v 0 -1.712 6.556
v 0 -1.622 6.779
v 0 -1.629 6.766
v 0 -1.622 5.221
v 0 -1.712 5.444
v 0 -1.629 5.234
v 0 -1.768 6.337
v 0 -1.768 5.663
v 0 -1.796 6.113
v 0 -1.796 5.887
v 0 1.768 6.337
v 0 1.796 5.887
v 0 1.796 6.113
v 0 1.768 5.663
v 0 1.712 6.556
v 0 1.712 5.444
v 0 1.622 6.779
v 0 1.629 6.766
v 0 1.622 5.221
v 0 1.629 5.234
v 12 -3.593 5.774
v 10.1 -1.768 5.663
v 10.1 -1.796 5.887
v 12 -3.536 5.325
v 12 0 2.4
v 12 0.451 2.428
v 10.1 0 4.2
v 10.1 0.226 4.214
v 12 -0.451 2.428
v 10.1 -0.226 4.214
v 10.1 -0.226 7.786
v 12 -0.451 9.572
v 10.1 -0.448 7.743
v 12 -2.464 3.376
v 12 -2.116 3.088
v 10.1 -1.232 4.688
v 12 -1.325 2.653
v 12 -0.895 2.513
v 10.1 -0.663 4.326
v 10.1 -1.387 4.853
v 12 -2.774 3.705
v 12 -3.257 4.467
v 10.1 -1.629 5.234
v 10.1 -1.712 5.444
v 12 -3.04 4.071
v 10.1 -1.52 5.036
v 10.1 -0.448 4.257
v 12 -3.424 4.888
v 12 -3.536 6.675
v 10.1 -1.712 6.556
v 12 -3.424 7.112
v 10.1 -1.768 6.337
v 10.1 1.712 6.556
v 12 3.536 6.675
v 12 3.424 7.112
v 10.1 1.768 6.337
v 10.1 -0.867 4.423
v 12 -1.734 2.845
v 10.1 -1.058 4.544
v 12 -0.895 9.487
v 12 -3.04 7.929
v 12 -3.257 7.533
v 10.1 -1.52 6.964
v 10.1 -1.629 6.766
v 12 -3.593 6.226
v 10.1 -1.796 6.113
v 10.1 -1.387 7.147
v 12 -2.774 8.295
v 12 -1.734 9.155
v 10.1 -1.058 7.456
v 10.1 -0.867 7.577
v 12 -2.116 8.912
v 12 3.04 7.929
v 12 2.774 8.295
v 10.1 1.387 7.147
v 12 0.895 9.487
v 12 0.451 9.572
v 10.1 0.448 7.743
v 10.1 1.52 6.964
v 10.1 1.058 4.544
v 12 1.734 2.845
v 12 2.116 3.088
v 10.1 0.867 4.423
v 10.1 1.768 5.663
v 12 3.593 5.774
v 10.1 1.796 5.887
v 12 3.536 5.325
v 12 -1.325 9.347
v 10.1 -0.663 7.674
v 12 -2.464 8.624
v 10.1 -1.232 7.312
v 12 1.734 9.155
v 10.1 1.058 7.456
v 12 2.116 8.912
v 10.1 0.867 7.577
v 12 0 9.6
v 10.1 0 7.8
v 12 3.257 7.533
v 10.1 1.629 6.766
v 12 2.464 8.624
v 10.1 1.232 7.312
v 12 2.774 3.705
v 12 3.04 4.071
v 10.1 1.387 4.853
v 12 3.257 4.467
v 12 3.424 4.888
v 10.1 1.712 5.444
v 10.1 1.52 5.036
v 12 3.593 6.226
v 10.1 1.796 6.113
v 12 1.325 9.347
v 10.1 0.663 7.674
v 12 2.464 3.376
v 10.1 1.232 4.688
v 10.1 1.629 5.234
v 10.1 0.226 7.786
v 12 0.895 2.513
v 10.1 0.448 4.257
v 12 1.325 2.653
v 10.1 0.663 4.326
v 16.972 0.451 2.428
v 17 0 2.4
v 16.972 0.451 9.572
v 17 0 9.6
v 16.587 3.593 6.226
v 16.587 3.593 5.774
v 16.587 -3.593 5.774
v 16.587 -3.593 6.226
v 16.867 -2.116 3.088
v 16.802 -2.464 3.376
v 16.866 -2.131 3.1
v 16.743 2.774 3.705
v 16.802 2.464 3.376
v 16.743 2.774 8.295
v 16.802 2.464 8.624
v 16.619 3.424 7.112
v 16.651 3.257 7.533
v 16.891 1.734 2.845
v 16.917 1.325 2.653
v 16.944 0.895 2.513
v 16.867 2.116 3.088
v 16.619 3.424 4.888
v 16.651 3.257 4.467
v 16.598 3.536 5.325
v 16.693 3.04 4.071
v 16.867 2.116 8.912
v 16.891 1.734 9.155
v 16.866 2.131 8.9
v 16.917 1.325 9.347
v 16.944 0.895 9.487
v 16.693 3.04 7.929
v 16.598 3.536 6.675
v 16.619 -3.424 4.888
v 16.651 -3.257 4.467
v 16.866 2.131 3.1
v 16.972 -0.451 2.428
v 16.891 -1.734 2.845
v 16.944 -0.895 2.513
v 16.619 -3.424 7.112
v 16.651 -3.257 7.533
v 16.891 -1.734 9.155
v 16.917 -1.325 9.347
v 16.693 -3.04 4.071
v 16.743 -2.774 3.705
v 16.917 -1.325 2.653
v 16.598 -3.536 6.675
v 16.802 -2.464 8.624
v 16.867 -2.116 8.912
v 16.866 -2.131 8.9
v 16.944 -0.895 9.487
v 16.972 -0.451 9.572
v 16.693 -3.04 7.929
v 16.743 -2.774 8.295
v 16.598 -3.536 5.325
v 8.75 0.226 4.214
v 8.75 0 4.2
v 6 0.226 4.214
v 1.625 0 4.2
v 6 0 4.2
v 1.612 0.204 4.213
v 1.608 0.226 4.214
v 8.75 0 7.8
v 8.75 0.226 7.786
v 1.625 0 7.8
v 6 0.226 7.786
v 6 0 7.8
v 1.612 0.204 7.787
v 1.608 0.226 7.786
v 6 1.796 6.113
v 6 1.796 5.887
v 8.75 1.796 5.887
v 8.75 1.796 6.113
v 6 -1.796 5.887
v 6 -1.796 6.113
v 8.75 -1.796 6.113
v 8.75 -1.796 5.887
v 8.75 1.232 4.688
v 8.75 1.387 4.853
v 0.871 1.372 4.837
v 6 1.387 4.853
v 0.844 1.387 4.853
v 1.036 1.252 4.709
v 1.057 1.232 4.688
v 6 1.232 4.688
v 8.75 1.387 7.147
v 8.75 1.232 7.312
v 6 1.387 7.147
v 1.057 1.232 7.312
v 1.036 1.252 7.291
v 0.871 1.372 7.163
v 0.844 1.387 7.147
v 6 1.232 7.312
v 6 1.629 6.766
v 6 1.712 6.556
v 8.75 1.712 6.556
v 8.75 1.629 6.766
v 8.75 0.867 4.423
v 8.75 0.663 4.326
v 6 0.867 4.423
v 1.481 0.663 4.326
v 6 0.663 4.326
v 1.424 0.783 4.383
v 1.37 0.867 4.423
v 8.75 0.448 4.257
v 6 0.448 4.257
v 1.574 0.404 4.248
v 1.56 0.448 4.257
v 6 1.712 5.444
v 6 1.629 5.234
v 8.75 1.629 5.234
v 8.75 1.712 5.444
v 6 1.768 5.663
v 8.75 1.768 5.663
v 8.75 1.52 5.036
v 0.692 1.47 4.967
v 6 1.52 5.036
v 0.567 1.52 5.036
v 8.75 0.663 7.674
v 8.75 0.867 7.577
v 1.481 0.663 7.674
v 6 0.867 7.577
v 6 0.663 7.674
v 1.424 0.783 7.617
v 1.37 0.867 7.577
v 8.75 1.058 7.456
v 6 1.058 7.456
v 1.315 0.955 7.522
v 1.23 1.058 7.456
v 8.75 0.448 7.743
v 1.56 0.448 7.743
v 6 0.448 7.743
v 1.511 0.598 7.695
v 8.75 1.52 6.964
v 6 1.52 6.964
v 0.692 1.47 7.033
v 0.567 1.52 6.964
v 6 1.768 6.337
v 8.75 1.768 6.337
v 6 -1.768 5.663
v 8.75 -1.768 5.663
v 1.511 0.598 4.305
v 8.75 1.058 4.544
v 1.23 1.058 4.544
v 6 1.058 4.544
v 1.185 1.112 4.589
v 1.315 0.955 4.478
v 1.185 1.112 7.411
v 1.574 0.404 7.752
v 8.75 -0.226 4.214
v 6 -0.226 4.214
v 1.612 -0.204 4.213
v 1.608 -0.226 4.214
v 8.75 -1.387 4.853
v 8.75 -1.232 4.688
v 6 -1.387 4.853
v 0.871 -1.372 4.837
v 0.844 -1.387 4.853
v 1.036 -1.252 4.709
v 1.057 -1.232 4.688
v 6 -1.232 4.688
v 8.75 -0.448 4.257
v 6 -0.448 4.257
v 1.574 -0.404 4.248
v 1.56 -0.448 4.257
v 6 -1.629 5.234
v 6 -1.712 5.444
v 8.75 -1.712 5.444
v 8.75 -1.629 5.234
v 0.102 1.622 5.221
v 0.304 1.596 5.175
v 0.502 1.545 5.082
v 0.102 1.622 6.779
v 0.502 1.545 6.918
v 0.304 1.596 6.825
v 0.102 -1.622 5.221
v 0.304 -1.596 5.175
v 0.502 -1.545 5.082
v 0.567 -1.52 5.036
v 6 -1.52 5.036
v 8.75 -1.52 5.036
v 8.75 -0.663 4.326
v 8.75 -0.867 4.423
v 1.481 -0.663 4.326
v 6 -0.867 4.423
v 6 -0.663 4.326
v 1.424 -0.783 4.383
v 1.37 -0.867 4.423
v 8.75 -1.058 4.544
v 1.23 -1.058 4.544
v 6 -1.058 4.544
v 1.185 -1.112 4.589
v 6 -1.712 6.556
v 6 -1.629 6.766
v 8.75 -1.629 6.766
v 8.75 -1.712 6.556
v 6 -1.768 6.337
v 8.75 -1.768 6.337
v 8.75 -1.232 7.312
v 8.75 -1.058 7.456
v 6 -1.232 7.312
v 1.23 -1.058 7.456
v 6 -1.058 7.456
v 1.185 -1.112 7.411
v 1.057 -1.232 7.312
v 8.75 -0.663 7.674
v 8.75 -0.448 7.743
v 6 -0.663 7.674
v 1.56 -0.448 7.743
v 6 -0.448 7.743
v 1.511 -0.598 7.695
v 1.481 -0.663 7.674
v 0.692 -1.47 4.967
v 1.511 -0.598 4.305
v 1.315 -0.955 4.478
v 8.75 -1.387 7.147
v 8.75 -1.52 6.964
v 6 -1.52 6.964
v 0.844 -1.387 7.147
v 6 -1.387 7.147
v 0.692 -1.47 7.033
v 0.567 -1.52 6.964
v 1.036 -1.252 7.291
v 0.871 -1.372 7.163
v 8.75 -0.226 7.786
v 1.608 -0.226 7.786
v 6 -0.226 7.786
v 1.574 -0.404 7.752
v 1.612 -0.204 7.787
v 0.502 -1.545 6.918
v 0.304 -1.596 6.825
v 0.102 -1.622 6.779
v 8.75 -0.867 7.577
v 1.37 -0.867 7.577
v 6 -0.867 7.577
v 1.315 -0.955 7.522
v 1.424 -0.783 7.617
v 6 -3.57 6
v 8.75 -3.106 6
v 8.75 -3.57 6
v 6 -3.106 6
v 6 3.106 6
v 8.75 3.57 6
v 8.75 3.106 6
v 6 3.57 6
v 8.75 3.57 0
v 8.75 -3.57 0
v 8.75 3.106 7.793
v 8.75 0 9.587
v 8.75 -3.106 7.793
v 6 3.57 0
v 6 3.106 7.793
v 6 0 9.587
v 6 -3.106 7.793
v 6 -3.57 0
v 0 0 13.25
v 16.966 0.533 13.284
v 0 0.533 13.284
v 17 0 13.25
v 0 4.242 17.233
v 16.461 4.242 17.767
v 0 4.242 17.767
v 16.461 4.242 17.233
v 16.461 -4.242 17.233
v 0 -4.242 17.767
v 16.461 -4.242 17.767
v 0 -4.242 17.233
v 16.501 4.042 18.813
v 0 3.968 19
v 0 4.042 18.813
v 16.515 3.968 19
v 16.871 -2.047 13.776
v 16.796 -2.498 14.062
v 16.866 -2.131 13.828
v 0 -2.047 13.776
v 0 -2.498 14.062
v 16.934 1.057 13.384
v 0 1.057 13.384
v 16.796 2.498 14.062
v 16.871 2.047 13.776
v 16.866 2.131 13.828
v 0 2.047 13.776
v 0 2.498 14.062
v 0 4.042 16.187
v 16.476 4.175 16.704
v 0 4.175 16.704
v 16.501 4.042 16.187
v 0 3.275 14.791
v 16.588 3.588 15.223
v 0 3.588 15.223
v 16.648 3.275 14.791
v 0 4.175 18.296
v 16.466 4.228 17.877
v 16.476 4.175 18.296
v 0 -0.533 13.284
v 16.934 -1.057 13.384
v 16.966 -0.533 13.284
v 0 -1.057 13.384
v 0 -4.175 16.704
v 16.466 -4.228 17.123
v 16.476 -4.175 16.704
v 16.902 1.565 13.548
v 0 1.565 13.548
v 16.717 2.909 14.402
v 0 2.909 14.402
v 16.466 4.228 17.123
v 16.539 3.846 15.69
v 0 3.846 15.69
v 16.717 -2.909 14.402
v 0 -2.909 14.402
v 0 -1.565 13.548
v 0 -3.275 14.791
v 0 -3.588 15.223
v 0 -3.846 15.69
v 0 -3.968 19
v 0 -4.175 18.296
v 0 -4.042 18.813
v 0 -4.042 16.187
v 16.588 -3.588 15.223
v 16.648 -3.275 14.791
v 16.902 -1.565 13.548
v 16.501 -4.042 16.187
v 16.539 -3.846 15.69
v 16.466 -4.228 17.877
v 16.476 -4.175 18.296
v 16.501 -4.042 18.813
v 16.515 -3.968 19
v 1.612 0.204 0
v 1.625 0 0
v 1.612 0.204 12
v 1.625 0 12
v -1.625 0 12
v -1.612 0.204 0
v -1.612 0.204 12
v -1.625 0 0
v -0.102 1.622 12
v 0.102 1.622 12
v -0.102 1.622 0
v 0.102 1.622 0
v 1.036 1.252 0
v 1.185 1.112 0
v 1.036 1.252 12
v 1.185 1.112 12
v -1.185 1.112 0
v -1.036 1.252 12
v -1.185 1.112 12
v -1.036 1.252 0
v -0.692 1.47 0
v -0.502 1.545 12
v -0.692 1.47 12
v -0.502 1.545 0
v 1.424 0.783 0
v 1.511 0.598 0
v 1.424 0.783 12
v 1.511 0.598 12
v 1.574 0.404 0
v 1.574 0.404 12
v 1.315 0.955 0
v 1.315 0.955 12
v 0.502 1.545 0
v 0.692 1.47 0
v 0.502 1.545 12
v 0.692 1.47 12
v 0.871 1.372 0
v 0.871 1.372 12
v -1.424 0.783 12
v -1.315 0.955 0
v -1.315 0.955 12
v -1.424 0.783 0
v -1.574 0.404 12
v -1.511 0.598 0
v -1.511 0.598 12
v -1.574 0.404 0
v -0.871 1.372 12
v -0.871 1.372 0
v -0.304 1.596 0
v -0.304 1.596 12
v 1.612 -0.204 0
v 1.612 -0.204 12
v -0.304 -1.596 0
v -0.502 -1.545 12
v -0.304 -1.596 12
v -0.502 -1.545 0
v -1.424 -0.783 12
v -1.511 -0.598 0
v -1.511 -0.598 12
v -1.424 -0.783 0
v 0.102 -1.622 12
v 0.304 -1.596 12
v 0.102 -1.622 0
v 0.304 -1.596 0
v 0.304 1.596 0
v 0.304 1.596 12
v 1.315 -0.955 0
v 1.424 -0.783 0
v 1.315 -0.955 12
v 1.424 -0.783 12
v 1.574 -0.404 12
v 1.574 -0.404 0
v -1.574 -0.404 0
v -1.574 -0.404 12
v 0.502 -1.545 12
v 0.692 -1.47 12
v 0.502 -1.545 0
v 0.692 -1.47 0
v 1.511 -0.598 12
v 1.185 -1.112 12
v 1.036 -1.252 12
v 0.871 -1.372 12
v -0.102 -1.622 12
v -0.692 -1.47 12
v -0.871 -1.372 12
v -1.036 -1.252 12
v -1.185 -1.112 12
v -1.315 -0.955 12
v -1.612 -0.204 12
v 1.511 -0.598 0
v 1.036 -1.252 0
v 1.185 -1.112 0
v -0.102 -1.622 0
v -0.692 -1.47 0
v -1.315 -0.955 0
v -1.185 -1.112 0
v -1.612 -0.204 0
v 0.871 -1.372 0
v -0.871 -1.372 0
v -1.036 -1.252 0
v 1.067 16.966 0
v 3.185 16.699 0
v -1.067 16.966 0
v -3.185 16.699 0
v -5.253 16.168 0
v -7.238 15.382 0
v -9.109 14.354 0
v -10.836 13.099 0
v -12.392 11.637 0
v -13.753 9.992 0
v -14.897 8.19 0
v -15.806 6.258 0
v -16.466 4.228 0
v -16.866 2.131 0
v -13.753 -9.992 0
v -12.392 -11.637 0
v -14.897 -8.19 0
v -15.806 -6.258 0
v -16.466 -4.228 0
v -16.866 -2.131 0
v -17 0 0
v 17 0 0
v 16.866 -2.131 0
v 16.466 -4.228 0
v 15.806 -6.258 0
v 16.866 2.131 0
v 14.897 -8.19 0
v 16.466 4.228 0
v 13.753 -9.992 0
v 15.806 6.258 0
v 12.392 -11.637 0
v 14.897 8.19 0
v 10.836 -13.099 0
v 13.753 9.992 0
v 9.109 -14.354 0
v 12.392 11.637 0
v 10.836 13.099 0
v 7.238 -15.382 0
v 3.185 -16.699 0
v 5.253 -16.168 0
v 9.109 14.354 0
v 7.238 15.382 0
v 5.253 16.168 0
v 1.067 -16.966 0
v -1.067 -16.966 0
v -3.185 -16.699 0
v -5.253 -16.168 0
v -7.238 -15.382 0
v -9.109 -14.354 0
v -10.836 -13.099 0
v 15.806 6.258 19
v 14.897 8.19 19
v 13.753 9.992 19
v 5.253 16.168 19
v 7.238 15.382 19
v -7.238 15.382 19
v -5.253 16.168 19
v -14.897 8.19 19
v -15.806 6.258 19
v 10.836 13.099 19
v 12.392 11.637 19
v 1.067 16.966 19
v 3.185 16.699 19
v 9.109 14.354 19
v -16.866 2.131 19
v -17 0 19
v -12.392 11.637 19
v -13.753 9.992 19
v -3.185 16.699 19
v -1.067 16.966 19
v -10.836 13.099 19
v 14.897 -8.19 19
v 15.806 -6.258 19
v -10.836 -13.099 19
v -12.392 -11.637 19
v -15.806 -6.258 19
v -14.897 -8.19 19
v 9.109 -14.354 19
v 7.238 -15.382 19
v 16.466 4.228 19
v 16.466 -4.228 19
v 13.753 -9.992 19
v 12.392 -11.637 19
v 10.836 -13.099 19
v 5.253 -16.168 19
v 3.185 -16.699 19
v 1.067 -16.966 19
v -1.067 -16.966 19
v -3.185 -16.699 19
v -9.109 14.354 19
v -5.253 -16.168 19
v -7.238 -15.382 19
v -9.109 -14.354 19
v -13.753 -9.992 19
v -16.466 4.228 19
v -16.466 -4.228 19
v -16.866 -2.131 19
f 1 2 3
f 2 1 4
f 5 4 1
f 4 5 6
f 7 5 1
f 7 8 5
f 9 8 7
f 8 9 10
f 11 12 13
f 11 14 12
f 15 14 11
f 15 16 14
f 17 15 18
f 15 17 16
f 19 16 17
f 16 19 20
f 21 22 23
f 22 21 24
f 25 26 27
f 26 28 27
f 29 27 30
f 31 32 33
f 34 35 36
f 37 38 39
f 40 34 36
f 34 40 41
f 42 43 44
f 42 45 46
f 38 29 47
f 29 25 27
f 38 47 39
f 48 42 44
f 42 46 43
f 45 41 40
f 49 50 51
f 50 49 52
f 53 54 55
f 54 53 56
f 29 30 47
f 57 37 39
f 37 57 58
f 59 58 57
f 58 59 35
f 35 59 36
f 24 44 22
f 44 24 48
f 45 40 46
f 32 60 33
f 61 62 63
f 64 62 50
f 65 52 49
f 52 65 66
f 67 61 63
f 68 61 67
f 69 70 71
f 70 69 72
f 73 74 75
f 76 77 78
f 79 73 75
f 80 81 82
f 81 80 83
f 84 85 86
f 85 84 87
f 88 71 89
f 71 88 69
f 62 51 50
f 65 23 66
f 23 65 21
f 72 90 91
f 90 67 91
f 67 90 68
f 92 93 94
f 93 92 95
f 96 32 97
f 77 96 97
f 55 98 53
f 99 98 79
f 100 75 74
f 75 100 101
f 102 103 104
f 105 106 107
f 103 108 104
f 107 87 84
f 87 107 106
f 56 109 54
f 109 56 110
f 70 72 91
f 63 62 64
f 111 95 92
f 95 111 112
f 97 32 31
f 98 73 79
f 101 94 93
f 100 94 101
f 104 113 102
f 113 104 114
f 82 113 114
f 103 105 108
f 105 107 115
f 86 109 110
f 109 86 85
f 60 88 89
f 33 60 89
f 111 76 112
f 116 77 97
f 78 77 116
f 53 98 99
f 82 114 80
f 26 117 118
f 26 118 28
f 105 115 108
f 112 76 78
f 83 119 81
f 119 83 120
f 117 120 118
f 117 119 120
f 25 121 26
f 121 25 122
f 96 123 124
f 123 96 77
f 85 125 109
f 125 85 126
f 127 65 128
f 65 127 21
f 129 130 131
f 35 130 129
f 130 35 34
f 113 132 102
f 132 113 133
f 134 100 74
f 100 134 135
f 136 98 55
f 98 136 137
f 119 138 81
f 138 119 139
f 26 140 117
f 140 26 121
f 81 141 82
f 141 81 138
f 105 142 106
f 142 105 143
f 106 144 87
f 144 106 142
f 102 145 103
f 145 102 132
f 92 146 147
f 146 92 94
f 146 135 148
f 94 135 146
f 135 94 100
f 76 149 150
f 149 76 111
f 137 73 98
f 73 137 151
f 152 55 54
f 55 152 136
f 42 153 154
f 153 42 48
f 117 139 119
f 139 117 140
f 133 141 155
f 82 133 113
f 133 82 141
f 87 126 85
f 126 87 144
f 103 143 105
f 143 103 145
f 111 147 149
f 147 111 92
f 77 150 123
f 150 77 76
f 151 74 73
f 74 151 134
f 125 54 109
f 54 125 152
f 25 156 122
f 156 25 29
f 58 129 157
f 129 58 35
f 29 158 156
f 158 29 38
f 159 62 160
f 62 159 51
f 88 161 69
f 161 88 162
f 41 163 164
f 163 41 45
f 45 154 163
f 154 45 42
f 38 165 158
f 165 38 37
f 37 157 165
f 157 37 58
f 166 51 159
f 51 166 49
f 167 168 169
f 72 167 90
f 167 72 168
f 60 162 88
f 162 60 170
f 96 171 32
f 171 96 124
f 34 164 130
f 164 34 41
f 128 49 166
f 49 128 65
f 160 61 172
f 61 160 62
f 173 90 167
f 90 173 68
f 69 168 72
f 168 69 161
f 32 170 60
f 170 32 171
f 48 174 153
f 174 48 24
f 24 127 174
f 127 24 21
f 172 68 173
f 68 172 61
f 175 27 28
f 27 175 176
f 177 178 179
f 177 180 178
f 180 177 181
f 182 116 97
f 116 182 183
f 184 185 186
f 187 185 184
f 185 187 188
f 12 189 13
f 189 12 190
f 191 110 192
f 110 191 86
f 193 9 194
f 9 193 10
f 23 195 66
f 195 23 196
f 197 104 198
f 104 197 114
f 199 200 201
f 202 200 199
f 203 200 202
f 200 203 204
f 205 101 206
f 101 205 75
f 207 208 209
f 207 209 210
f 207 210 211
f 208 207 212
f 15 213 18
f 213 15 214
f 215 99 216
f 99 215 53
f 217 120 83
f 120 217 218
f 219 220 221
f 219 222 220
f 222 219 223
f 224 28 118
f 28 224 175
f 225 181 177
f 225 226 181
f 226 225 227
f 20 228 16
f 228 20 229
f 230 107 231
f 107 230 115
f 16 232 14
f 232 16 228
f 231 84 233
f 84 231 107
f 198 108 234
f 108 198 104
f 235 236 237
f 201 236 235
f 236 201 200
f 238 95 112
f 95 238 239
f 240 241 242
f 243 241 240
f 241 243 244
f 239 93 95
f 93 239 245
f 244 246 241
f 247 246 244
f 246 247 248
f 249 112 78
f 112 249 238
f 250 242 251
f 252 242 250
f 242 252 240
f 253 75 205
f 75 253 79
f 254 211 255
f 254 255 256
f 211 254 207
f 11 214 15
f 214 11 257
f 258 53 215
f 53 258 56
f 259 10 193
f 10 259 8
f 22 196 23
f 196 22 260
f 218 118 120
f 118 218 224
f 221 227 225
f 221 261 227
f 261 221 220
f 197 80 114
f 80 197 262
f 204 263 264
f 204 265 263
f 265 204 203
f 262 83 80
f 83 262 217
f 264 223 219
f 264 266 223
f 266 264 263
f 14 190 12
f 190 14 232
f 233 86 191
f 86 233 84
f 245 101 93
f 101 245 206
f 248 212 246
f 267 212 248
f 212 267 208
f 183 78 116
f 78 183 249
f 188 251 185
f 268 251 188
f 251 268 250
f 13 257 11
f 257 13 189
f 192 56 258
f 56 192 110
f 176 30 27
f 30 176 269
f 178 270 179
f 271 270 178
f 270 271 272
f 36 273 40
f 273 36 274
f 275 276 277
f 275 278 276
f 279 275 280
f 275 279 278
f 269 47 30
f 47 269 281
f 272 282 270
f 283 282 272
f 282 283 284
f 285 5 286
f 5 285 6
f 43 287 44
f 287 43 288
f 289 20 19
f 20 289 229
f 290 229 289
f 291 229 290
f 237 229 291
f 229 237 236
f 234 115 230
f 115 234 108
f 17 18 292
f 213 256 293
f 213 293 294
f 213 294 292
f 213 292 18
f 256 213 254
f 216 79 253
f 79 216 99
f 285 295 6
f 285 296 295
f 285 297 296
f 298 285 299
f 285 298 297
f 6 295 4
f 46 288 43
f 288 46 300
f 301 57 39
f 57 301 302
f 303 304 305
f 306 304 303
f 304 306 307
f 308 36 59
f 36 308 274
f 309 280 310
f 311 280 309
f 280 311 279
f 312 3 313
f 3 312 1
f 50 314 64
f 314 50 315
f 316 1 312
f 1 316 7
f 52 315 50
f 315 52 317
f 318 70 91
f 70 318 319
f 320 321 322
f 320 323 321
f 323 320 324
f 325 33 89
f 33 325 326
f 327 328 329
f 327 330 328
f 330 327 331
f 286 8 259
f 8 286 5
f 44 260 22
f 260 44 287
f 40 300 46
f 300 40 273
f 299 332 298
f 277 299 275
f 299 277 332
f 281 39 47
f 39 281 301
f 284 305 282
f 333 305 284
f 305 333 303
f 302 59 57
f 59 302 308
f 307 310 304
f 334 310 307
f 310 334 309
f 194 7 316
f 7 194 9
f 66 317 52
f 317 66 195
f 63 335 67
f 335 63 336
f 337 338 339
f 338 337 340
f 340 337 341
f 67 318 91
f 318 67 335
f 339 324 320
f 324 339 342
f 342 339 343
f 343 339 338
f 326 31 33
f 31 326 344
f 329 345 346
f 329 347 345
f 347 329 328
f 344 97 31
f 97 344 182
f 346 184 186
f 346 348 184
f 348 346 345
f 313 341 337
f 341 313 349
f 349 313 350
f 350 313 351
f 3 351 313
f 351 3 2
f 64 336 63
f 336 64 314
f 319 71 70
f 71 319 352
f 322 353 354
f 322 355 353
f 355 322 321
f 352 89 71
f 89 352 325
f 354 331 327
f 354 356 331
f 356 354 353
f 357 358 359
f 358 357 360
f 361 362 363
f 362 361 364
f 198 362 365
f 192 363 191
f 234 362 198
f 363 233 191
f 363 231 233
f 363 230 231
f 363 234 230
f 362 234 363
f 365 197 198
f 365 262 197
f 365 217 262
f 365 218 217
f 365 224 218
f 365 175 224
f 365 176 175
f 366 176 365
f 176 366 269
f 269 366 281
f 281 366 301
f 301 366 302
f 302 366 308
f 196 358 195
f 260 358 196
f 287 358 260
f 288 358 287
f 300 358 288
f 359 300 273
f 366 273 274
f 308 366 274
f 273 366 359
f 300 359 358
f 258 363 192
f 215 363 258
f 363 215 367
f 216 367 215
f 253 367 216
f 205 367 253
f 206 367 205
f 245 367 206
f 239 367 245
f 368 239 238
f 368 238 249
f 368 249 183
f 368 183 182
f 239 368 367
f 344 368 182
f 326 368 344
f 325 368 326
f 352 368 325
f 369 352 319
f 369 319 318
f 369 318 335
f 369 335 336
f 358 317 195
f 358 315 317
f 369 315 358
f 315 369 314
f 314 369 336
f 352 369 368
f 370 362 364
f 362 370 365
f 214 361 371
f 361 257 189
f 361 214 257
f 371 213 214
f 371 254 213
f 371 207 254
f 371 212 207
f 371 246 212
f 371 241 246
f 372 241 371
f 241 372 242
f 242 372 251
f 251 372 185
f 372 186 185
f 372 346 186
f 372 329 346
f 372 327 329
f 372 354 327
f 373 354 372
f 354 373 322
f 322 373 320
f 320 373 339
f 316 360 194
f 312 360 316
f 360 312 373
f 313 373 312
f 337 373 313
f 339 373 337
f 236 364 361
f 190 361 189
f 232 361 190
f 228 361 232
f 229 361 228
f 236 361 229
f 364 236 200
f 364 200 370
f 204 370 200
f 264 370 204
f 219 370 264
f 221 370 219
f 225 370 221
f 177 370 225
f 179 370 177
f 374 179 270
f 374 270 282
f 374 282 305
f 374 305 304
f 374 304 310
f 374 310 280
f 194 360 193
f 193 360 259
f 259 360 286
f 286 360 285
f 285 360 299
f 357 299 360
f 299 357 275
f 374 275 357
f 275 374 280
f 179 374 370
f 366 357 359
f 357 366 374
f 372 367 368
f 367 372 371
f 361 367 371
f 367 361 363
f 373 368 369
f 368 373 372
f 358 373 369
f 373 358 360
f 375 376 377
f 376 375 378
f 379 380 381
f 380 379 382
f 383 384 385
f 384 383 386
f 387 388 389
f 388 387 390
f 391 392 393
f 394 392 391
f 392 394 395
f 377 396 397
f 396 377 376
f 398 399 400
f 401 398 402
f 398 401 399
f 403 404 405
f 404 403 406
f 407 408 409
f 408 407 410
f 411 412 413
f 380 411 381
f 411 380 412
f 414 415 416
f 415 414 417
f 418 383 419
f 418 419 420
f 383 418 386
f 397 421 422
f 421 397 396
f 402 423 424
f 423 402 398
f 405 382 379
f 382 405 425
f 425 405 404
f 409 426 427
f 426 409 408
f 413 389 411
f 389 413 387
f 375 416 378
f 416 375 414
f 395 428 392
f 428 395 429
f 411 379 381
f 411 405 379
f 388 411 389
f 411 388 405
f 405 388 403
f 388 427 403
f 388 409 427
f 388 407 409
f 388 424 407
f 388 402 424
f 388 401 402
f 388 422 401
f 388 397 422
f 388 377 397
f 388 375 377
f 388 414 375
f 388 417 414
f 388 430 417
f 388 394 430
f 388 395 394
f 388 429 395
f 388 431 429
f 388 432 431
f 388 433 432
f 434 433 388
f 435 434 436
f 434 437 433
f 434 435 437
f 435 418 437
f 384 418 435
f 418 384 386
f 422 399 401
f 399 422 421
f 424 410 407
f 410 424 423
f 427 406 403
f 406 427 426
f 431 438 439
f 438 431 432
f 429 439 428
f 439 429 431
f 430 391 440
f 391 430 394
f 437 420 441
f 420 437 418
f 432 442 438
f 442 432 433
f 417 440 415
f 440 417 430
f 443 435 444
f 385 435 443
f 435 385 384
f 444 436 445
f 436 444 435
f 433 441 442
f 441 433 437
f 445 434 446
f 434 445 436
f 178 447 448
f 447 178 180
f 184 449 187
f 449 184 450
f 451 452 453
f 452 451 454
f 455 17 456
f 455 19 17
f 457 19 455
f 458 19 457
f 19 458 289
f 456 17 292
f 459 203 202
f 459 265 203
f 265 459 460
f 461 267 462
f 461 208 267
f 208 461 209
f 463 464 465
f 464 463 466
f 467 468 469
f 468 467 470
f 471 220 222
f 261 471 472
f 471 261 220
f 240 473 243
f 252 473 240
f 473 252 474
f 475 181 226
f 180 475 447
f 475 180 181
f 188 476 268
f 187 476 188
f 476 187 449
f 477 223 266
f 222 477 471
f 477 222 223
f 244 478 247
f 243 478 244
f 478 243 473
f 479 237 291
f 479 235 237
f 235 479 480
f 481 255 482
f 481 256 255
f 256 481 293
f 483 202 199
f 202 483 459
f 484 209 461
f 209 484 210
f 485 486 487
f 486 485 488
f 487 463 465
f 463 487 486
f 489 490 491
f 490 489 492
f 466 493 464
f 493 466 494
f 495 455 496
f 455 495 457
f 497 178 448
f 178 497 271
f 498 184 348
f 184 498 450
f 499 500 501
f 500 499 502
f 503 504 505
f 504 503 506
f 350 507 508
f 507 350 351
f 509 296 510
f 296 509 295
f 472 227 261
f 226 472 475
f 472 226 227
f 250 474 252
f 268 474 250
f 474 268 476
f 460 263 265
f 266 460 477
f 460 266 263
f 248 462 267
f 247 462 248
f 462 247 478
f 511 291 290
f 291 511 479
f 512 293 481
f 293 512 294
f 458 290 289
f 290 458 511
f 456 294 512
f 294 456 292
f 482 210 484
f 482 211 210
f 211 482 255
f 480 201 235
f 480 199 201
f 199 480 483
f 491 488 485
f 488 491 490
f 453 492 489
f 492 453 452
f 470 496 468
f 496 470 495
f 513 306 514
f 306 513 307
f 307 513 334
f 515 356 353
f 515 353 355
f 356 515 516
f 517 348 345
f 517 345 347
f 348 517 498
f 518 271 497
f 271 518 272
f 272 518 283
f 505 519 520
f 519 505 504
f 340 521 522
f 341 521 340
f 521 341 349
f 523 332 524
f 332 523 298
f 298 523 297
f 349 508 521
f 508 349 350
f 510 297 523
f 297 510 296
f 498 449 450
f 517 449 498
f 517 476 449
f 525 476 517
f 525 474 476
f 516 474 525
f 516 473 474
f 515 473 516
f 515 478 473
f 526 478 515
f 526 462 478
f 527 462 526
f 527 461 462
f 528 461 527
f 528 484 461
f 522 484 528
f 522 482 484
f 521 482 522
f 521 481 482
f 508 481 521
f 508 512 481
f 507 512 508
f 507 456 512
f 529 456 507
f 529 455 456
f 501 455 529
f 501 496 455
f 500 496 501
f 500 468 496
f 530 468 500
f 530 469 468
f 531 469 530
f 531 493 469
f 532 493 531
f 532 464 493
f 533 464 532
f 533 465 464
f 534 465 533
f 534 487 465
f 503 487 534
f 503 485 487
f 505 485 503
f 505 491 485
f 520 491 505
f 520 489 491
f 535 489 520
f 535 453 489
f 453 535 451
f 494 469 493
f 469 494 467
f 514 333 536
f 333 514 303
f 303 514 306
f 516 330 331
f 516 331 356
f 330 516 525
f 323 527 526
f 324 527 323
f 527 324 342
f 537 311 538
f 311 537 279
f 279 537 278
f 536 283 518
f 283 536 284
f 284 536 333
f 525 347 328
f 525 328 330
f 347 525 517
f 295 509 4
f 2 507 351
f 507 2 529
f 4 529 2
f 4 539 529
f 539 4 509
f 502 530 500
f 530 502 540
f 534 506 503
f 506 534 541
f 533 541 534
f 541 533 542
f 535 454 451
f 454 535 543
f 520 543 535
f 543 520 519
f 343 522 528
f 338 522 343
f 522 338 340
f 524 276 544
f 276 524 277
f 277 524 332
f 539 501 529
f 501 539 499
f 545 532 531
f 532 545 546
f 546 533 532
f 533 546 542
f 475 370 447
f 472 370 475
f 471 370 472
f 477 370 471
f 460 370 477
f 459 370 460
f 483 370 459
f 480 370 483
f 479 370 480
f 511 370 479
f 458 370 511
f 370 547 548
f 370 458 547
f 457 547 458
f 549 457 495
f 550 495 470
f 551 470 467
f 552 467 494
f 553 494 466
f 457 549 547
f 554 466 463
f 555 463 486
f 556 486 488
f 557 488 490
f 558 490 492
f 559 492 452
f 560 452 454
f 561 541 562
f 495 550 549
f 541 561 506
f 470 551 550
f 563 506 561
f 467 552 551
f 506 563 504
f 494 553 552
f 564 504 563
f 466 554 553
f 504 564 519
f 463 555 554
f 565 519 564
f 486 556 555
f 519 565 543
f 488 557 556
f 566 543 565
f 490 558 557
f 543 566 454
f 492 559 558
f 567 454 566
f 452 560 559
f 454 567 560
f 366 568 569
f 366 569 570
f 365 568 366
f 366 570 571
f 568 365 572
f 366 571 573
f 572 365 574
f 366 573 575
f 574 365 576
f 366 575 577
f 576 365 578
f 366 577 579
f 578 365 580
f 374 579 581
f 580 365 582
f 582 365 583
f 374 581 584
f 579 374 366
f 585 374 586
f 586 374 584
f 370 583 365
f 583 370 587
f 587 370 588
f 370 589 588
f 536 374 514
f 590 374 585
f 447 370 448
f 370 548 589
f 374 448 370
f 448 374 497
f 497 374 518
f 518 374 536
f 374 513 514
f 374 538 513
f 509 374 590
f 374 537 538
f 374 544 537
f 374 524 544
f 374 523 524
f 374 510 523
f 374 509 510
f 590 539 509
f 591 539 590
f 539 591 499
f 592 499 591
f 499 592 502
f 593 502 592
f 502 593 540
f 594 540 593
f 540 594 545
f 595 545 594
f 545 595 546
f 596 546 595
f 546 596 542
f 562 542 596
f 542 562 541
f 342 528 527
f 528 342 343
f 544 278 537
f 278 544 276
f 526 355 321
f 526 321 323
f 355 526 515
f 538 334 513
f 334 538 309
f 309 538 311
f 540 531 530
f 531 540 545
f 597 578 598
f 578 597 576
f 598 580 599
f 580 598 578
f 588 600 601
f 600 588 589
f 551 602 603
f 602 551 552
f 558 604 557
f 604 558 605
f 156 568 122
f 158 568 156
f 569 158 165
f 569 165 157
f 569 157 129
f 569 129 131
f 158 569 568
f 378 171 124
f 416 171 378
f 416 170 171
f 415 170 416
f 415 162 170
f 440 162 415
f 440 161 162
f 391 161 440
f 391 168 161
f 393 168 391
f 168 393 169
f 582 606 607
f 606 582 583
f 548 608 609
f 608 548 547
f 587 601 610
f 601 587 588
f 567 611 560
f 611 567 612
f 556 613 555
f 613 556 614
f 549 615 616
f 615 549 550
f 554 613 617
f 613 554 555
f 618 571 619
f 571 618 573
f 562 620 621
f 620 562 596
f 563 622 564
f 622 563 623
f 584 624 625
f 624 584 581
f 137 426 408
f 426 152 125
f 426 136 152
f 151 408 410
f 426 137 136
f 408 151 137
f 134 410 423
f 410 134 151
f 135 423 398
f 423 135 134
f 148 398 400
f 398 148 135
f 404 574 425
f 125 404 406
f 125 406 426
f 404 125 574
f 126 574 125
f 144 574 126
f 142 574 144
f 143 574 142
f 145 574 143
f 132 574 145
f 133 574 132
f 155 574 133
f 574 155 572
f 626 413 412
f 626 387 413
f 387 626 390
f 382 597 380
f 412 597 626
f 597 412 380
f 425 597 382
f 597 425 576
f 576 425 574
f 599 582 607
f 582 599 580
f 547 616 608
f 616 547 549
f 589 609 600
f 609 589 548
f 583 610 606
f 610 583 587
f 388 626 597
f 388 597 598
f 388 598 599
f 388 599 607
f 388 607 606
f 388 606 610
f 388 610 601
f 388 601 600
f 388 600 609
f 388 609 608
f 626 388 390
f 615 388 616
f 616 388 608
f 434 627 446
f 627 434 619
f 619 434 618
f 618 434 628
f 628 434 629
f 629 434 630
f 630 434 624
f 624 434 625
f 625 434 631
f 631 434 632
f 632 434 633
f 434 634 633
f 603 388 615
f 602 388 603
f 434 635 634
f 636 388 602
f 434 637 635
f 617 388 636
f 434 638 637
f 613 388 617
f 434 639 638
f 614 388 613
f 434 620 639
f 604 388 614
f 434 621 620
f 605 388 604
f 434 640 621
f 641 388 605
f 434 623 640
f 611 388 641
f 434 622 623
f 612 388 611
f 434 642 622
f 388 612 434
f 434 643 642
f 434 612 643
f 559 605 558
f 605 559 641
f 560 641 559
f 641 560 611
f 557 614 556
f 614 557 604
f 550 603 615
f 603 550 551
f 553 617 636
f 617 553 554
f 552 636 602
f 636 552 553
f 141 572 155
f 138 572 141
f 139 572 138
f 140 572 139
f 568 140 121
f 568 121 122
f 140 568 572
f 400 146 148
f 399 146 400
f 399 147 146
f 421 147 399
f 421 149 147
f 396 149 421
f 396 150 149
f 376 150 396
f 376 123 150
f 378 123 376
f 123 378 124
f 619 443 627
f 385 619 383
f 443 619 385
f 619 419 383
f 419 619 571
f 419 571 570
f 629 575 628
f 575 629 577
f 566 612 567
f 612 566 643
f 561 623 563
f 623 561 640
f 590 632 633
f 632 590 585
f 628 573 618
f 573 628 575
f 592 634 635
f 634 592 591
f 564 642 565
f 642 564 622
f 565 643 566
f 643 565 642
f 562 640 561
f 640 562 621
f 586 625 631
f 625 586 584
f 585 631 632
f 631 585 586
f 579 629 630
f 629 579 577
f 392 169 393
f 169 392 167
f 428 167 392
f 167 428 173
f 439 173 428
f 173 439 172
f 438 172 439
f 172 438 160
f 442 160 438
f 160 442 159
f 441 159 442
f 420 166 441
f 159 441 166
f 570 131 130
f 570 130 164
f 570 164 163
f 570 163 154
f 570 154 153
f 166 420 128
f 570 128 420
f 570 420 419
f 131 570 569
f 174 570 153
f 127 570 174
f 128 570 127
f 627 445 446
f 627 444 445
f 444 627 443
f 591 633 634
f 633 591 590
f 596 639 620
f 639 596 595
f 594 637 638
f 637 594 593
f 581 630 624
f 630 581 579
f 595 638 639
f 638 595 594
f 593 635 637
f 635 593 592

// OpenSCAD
$fn = 50;


difference() {
	union() {
		cylinder(h = 19, r = 17.0000000000);
	}
	union() {
		translate(v = [12, 0, 6.0000000000]) {
			rotate(a = [0, 90, 0]) {
				difference() {
					union() {
						translate(v = [0, 0, -12.0000000000]) {
							cylinder(h = 12, r = 1.5000000000);
						}
						translate(v = [0, 0, -1.9000000000]) {
							cylinder(h = 1.9000000000, r1 = 1.8000000000, r2 = 3.6000000000);
						}
						cylinder(h = 250, r = 3.6000000000);
						translate(v = [0, 0, -12.0000000000]) {
							cylinder(h = 12, r = 1.8000000000);
						}
						translate(v = [0, 0, -12.0000000000]) {
							cylinder(h = 12, r = 1.5000000000);
						}
					}
					union();
				}
			}
		}
		translate(v = [6.0000000000, 0, 6.0000000000]) {
			rotate(a = [0, 90, 0]) {
				difference() {
					union() {
						translate(v = [0.0000000000, -3.5702500000, 0]) {
							cube(size = [20, 7.1405000000, 2.7500000000]);
						}
						linear_extrude(height = 2.7500000000) {
							polygon(points = [[3.5870000000, 0.0000000000], [1.7935000000, 3.1064331234], [-1.7935000000, 3.1064331234], [-3.5870000000, 0.0000000000], [-1.7935000000, -3.1064331234], [1.7935000000, -3.1064331234]]);
						}
					}
					union();
				}
			}
		}
		#translate(v = [0, 0, 17.5000000000]) {
			rotate(a = [0, 90, 0]) {
				cylinder(h = 200, r = 4.2500000000);
			}
		}
		cylinder(h = 12, r = 1.6250000000);
	}
}
